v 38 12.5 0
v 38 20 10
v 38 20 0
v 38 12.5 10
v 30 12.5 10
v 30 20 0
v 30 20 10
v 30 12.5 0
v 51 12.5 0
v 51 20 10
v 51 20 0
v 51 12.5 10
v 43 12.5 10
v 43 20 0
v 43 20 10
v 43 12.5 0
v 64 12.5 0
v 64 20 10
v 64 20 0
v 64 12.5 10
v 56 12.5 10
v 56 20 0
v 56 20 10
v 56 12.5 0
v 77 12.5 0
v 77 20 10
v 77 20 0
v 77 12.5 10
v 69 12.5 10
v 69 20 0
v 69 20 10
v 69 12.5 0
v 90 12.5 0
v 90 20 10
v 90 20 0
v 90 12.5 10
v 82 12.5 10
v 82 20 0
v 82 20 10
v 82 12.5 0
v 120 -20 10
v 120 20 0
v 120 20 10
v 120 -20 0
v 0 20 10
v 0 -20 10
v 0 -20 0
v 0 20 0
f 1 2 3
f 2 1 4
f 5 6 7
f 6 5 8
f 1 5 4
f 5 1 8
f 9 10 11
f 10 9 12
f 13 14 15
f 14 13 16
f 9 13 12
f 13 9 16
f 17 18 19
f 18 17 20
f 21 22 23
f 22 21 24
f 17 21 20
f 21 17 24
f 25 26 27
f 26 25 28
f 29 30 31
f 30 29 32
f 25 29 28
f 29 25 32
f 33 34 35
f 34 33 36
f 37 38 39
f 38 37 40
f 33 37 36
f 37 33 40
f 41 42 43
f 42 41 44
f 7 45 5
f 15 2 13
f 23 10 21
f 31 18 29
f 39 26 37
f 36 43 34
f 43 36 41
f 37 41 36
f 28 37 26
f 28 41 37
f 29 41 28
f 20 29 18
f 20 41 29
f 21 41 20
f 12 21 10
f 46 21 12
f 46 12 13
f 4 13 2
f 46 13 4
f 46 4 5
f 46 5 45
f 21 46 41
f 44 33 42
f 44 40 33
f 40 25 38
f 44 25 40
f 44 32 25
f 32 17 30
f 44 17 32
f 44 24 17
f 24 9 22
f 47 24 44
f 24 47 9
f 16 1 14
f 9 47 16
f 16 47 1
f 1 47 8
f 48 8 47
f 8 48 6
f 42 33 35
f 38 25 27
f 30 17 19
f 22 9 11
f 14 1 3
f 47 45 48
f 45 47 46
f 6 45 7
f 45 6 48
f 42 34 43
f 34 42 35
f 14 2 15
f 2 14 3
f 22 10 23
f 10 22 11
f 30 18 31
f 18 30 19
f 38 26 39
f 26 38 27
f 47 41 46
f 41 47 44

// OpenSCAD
// ============================================================
// Parametric Desktop Cable Organizer
// OpenSCAD script - adjustable length, slot count, spacing, etc.
// ============================================================

/* [Dimensions] */
// Total length along X axis (mm): 80-200
length = 120;
// Number of cable slots: 3-8
num_slots = 5;
// Width of each cable slot along X (mm): 6-12
slot_width = 8;
// Depth of each cable slot along Y (mm): 10-20
slot_depth = 15;
// Spacing between adjacent slots along X (mm): >= 3
slot_spacing = 5;

// Derived constants
body_width  = 40;  // Y dimension (mm) - flat structure, no support needed
body_height = 10;  // Z dimension (mm) - flat structure, no support needed
end_margin  = 5;   // margin from end of body to first/last slot

// Parameter validation
assert(length >= 80 && length <= 200, str("length out of range: ", length));
assert(num_slots >= 3 && num_slots <= 8, str("num_slots out of range: ", num_slots));
assert(slot_width >= 6 && slot_width <= 12, str("slot_width out of range: ", slot_width));
assert(slot_depth >= 10 && slot_depth <= 20, str("slot_depth out of range: ", slot_depth));
assert(slot_spacing >= 3, str("slot_spacing too small: ", slot_spacing));

// Total occupied length along X (slots spread along length, not width)
total_slot_length = num_slots * slot_width + (num_slots - 1) * slot_spacing;
assert(total_slot_length + 2 * end_margin <= length,
       str("slots overflow body length: total=", total_slot_length + 2 * end_margin, " length=", length));

// Slot depth (Y) must not exceed body width
assert(slot_depth < body_width,
       str("slot_depth exceeds body_width: ", slot_depth, " >= ", body_width));

// Module: one slot cut (square hole going through Z)
// slot_width is along X, slot_depth is along Y
module slot_cut(i) {
    group_span = num_slots * slot_width + (num_slots - 1) * slot_spacing;
    x_start = (length - group_span) / 2 + i * (slot_width + slot_spacing);
    y_center = body_width / 2;
    // Slightly oversized in Z to fully cut through body
    translate([x_start, y_center - slot_depth / 2, -1])
        cube([slot_width, slot_depth, body_height + 2]);
}

module cable_organizer() {
    difference() {
        // Main body: length x body_width x body_height, centered on origin in Y/Z
        translate([0, -body_width / 2, 0])
            cube([length, body_width, body_height]);
        // Subtract each slot
        for (i = [0 : num_slots - 1]) {
            slot_cut(i);
        }
    }
}

echo("ECHO: Cable Organizer Parameters");
echo(str("ECHO: length=", length, "mm"));
echo(str("ECHO: body_width=", body_width, "mm"));
echo(str("ECHO: body_height=", body_height, "mm"));
echo(str("ECHO: num_slots=", num_slots));
echo(str("ECHO: slot_width=", slot_width, "mm"));
echo(str("ECHO: slot_depth=", slot_depth, "mm"));
echo(str("ECHO: slot_spacing=", slot_spacing, "mm"));
echo(str("ECHO: total_slot_length=", total_slot_length, "mm"));

cable_organizer();
